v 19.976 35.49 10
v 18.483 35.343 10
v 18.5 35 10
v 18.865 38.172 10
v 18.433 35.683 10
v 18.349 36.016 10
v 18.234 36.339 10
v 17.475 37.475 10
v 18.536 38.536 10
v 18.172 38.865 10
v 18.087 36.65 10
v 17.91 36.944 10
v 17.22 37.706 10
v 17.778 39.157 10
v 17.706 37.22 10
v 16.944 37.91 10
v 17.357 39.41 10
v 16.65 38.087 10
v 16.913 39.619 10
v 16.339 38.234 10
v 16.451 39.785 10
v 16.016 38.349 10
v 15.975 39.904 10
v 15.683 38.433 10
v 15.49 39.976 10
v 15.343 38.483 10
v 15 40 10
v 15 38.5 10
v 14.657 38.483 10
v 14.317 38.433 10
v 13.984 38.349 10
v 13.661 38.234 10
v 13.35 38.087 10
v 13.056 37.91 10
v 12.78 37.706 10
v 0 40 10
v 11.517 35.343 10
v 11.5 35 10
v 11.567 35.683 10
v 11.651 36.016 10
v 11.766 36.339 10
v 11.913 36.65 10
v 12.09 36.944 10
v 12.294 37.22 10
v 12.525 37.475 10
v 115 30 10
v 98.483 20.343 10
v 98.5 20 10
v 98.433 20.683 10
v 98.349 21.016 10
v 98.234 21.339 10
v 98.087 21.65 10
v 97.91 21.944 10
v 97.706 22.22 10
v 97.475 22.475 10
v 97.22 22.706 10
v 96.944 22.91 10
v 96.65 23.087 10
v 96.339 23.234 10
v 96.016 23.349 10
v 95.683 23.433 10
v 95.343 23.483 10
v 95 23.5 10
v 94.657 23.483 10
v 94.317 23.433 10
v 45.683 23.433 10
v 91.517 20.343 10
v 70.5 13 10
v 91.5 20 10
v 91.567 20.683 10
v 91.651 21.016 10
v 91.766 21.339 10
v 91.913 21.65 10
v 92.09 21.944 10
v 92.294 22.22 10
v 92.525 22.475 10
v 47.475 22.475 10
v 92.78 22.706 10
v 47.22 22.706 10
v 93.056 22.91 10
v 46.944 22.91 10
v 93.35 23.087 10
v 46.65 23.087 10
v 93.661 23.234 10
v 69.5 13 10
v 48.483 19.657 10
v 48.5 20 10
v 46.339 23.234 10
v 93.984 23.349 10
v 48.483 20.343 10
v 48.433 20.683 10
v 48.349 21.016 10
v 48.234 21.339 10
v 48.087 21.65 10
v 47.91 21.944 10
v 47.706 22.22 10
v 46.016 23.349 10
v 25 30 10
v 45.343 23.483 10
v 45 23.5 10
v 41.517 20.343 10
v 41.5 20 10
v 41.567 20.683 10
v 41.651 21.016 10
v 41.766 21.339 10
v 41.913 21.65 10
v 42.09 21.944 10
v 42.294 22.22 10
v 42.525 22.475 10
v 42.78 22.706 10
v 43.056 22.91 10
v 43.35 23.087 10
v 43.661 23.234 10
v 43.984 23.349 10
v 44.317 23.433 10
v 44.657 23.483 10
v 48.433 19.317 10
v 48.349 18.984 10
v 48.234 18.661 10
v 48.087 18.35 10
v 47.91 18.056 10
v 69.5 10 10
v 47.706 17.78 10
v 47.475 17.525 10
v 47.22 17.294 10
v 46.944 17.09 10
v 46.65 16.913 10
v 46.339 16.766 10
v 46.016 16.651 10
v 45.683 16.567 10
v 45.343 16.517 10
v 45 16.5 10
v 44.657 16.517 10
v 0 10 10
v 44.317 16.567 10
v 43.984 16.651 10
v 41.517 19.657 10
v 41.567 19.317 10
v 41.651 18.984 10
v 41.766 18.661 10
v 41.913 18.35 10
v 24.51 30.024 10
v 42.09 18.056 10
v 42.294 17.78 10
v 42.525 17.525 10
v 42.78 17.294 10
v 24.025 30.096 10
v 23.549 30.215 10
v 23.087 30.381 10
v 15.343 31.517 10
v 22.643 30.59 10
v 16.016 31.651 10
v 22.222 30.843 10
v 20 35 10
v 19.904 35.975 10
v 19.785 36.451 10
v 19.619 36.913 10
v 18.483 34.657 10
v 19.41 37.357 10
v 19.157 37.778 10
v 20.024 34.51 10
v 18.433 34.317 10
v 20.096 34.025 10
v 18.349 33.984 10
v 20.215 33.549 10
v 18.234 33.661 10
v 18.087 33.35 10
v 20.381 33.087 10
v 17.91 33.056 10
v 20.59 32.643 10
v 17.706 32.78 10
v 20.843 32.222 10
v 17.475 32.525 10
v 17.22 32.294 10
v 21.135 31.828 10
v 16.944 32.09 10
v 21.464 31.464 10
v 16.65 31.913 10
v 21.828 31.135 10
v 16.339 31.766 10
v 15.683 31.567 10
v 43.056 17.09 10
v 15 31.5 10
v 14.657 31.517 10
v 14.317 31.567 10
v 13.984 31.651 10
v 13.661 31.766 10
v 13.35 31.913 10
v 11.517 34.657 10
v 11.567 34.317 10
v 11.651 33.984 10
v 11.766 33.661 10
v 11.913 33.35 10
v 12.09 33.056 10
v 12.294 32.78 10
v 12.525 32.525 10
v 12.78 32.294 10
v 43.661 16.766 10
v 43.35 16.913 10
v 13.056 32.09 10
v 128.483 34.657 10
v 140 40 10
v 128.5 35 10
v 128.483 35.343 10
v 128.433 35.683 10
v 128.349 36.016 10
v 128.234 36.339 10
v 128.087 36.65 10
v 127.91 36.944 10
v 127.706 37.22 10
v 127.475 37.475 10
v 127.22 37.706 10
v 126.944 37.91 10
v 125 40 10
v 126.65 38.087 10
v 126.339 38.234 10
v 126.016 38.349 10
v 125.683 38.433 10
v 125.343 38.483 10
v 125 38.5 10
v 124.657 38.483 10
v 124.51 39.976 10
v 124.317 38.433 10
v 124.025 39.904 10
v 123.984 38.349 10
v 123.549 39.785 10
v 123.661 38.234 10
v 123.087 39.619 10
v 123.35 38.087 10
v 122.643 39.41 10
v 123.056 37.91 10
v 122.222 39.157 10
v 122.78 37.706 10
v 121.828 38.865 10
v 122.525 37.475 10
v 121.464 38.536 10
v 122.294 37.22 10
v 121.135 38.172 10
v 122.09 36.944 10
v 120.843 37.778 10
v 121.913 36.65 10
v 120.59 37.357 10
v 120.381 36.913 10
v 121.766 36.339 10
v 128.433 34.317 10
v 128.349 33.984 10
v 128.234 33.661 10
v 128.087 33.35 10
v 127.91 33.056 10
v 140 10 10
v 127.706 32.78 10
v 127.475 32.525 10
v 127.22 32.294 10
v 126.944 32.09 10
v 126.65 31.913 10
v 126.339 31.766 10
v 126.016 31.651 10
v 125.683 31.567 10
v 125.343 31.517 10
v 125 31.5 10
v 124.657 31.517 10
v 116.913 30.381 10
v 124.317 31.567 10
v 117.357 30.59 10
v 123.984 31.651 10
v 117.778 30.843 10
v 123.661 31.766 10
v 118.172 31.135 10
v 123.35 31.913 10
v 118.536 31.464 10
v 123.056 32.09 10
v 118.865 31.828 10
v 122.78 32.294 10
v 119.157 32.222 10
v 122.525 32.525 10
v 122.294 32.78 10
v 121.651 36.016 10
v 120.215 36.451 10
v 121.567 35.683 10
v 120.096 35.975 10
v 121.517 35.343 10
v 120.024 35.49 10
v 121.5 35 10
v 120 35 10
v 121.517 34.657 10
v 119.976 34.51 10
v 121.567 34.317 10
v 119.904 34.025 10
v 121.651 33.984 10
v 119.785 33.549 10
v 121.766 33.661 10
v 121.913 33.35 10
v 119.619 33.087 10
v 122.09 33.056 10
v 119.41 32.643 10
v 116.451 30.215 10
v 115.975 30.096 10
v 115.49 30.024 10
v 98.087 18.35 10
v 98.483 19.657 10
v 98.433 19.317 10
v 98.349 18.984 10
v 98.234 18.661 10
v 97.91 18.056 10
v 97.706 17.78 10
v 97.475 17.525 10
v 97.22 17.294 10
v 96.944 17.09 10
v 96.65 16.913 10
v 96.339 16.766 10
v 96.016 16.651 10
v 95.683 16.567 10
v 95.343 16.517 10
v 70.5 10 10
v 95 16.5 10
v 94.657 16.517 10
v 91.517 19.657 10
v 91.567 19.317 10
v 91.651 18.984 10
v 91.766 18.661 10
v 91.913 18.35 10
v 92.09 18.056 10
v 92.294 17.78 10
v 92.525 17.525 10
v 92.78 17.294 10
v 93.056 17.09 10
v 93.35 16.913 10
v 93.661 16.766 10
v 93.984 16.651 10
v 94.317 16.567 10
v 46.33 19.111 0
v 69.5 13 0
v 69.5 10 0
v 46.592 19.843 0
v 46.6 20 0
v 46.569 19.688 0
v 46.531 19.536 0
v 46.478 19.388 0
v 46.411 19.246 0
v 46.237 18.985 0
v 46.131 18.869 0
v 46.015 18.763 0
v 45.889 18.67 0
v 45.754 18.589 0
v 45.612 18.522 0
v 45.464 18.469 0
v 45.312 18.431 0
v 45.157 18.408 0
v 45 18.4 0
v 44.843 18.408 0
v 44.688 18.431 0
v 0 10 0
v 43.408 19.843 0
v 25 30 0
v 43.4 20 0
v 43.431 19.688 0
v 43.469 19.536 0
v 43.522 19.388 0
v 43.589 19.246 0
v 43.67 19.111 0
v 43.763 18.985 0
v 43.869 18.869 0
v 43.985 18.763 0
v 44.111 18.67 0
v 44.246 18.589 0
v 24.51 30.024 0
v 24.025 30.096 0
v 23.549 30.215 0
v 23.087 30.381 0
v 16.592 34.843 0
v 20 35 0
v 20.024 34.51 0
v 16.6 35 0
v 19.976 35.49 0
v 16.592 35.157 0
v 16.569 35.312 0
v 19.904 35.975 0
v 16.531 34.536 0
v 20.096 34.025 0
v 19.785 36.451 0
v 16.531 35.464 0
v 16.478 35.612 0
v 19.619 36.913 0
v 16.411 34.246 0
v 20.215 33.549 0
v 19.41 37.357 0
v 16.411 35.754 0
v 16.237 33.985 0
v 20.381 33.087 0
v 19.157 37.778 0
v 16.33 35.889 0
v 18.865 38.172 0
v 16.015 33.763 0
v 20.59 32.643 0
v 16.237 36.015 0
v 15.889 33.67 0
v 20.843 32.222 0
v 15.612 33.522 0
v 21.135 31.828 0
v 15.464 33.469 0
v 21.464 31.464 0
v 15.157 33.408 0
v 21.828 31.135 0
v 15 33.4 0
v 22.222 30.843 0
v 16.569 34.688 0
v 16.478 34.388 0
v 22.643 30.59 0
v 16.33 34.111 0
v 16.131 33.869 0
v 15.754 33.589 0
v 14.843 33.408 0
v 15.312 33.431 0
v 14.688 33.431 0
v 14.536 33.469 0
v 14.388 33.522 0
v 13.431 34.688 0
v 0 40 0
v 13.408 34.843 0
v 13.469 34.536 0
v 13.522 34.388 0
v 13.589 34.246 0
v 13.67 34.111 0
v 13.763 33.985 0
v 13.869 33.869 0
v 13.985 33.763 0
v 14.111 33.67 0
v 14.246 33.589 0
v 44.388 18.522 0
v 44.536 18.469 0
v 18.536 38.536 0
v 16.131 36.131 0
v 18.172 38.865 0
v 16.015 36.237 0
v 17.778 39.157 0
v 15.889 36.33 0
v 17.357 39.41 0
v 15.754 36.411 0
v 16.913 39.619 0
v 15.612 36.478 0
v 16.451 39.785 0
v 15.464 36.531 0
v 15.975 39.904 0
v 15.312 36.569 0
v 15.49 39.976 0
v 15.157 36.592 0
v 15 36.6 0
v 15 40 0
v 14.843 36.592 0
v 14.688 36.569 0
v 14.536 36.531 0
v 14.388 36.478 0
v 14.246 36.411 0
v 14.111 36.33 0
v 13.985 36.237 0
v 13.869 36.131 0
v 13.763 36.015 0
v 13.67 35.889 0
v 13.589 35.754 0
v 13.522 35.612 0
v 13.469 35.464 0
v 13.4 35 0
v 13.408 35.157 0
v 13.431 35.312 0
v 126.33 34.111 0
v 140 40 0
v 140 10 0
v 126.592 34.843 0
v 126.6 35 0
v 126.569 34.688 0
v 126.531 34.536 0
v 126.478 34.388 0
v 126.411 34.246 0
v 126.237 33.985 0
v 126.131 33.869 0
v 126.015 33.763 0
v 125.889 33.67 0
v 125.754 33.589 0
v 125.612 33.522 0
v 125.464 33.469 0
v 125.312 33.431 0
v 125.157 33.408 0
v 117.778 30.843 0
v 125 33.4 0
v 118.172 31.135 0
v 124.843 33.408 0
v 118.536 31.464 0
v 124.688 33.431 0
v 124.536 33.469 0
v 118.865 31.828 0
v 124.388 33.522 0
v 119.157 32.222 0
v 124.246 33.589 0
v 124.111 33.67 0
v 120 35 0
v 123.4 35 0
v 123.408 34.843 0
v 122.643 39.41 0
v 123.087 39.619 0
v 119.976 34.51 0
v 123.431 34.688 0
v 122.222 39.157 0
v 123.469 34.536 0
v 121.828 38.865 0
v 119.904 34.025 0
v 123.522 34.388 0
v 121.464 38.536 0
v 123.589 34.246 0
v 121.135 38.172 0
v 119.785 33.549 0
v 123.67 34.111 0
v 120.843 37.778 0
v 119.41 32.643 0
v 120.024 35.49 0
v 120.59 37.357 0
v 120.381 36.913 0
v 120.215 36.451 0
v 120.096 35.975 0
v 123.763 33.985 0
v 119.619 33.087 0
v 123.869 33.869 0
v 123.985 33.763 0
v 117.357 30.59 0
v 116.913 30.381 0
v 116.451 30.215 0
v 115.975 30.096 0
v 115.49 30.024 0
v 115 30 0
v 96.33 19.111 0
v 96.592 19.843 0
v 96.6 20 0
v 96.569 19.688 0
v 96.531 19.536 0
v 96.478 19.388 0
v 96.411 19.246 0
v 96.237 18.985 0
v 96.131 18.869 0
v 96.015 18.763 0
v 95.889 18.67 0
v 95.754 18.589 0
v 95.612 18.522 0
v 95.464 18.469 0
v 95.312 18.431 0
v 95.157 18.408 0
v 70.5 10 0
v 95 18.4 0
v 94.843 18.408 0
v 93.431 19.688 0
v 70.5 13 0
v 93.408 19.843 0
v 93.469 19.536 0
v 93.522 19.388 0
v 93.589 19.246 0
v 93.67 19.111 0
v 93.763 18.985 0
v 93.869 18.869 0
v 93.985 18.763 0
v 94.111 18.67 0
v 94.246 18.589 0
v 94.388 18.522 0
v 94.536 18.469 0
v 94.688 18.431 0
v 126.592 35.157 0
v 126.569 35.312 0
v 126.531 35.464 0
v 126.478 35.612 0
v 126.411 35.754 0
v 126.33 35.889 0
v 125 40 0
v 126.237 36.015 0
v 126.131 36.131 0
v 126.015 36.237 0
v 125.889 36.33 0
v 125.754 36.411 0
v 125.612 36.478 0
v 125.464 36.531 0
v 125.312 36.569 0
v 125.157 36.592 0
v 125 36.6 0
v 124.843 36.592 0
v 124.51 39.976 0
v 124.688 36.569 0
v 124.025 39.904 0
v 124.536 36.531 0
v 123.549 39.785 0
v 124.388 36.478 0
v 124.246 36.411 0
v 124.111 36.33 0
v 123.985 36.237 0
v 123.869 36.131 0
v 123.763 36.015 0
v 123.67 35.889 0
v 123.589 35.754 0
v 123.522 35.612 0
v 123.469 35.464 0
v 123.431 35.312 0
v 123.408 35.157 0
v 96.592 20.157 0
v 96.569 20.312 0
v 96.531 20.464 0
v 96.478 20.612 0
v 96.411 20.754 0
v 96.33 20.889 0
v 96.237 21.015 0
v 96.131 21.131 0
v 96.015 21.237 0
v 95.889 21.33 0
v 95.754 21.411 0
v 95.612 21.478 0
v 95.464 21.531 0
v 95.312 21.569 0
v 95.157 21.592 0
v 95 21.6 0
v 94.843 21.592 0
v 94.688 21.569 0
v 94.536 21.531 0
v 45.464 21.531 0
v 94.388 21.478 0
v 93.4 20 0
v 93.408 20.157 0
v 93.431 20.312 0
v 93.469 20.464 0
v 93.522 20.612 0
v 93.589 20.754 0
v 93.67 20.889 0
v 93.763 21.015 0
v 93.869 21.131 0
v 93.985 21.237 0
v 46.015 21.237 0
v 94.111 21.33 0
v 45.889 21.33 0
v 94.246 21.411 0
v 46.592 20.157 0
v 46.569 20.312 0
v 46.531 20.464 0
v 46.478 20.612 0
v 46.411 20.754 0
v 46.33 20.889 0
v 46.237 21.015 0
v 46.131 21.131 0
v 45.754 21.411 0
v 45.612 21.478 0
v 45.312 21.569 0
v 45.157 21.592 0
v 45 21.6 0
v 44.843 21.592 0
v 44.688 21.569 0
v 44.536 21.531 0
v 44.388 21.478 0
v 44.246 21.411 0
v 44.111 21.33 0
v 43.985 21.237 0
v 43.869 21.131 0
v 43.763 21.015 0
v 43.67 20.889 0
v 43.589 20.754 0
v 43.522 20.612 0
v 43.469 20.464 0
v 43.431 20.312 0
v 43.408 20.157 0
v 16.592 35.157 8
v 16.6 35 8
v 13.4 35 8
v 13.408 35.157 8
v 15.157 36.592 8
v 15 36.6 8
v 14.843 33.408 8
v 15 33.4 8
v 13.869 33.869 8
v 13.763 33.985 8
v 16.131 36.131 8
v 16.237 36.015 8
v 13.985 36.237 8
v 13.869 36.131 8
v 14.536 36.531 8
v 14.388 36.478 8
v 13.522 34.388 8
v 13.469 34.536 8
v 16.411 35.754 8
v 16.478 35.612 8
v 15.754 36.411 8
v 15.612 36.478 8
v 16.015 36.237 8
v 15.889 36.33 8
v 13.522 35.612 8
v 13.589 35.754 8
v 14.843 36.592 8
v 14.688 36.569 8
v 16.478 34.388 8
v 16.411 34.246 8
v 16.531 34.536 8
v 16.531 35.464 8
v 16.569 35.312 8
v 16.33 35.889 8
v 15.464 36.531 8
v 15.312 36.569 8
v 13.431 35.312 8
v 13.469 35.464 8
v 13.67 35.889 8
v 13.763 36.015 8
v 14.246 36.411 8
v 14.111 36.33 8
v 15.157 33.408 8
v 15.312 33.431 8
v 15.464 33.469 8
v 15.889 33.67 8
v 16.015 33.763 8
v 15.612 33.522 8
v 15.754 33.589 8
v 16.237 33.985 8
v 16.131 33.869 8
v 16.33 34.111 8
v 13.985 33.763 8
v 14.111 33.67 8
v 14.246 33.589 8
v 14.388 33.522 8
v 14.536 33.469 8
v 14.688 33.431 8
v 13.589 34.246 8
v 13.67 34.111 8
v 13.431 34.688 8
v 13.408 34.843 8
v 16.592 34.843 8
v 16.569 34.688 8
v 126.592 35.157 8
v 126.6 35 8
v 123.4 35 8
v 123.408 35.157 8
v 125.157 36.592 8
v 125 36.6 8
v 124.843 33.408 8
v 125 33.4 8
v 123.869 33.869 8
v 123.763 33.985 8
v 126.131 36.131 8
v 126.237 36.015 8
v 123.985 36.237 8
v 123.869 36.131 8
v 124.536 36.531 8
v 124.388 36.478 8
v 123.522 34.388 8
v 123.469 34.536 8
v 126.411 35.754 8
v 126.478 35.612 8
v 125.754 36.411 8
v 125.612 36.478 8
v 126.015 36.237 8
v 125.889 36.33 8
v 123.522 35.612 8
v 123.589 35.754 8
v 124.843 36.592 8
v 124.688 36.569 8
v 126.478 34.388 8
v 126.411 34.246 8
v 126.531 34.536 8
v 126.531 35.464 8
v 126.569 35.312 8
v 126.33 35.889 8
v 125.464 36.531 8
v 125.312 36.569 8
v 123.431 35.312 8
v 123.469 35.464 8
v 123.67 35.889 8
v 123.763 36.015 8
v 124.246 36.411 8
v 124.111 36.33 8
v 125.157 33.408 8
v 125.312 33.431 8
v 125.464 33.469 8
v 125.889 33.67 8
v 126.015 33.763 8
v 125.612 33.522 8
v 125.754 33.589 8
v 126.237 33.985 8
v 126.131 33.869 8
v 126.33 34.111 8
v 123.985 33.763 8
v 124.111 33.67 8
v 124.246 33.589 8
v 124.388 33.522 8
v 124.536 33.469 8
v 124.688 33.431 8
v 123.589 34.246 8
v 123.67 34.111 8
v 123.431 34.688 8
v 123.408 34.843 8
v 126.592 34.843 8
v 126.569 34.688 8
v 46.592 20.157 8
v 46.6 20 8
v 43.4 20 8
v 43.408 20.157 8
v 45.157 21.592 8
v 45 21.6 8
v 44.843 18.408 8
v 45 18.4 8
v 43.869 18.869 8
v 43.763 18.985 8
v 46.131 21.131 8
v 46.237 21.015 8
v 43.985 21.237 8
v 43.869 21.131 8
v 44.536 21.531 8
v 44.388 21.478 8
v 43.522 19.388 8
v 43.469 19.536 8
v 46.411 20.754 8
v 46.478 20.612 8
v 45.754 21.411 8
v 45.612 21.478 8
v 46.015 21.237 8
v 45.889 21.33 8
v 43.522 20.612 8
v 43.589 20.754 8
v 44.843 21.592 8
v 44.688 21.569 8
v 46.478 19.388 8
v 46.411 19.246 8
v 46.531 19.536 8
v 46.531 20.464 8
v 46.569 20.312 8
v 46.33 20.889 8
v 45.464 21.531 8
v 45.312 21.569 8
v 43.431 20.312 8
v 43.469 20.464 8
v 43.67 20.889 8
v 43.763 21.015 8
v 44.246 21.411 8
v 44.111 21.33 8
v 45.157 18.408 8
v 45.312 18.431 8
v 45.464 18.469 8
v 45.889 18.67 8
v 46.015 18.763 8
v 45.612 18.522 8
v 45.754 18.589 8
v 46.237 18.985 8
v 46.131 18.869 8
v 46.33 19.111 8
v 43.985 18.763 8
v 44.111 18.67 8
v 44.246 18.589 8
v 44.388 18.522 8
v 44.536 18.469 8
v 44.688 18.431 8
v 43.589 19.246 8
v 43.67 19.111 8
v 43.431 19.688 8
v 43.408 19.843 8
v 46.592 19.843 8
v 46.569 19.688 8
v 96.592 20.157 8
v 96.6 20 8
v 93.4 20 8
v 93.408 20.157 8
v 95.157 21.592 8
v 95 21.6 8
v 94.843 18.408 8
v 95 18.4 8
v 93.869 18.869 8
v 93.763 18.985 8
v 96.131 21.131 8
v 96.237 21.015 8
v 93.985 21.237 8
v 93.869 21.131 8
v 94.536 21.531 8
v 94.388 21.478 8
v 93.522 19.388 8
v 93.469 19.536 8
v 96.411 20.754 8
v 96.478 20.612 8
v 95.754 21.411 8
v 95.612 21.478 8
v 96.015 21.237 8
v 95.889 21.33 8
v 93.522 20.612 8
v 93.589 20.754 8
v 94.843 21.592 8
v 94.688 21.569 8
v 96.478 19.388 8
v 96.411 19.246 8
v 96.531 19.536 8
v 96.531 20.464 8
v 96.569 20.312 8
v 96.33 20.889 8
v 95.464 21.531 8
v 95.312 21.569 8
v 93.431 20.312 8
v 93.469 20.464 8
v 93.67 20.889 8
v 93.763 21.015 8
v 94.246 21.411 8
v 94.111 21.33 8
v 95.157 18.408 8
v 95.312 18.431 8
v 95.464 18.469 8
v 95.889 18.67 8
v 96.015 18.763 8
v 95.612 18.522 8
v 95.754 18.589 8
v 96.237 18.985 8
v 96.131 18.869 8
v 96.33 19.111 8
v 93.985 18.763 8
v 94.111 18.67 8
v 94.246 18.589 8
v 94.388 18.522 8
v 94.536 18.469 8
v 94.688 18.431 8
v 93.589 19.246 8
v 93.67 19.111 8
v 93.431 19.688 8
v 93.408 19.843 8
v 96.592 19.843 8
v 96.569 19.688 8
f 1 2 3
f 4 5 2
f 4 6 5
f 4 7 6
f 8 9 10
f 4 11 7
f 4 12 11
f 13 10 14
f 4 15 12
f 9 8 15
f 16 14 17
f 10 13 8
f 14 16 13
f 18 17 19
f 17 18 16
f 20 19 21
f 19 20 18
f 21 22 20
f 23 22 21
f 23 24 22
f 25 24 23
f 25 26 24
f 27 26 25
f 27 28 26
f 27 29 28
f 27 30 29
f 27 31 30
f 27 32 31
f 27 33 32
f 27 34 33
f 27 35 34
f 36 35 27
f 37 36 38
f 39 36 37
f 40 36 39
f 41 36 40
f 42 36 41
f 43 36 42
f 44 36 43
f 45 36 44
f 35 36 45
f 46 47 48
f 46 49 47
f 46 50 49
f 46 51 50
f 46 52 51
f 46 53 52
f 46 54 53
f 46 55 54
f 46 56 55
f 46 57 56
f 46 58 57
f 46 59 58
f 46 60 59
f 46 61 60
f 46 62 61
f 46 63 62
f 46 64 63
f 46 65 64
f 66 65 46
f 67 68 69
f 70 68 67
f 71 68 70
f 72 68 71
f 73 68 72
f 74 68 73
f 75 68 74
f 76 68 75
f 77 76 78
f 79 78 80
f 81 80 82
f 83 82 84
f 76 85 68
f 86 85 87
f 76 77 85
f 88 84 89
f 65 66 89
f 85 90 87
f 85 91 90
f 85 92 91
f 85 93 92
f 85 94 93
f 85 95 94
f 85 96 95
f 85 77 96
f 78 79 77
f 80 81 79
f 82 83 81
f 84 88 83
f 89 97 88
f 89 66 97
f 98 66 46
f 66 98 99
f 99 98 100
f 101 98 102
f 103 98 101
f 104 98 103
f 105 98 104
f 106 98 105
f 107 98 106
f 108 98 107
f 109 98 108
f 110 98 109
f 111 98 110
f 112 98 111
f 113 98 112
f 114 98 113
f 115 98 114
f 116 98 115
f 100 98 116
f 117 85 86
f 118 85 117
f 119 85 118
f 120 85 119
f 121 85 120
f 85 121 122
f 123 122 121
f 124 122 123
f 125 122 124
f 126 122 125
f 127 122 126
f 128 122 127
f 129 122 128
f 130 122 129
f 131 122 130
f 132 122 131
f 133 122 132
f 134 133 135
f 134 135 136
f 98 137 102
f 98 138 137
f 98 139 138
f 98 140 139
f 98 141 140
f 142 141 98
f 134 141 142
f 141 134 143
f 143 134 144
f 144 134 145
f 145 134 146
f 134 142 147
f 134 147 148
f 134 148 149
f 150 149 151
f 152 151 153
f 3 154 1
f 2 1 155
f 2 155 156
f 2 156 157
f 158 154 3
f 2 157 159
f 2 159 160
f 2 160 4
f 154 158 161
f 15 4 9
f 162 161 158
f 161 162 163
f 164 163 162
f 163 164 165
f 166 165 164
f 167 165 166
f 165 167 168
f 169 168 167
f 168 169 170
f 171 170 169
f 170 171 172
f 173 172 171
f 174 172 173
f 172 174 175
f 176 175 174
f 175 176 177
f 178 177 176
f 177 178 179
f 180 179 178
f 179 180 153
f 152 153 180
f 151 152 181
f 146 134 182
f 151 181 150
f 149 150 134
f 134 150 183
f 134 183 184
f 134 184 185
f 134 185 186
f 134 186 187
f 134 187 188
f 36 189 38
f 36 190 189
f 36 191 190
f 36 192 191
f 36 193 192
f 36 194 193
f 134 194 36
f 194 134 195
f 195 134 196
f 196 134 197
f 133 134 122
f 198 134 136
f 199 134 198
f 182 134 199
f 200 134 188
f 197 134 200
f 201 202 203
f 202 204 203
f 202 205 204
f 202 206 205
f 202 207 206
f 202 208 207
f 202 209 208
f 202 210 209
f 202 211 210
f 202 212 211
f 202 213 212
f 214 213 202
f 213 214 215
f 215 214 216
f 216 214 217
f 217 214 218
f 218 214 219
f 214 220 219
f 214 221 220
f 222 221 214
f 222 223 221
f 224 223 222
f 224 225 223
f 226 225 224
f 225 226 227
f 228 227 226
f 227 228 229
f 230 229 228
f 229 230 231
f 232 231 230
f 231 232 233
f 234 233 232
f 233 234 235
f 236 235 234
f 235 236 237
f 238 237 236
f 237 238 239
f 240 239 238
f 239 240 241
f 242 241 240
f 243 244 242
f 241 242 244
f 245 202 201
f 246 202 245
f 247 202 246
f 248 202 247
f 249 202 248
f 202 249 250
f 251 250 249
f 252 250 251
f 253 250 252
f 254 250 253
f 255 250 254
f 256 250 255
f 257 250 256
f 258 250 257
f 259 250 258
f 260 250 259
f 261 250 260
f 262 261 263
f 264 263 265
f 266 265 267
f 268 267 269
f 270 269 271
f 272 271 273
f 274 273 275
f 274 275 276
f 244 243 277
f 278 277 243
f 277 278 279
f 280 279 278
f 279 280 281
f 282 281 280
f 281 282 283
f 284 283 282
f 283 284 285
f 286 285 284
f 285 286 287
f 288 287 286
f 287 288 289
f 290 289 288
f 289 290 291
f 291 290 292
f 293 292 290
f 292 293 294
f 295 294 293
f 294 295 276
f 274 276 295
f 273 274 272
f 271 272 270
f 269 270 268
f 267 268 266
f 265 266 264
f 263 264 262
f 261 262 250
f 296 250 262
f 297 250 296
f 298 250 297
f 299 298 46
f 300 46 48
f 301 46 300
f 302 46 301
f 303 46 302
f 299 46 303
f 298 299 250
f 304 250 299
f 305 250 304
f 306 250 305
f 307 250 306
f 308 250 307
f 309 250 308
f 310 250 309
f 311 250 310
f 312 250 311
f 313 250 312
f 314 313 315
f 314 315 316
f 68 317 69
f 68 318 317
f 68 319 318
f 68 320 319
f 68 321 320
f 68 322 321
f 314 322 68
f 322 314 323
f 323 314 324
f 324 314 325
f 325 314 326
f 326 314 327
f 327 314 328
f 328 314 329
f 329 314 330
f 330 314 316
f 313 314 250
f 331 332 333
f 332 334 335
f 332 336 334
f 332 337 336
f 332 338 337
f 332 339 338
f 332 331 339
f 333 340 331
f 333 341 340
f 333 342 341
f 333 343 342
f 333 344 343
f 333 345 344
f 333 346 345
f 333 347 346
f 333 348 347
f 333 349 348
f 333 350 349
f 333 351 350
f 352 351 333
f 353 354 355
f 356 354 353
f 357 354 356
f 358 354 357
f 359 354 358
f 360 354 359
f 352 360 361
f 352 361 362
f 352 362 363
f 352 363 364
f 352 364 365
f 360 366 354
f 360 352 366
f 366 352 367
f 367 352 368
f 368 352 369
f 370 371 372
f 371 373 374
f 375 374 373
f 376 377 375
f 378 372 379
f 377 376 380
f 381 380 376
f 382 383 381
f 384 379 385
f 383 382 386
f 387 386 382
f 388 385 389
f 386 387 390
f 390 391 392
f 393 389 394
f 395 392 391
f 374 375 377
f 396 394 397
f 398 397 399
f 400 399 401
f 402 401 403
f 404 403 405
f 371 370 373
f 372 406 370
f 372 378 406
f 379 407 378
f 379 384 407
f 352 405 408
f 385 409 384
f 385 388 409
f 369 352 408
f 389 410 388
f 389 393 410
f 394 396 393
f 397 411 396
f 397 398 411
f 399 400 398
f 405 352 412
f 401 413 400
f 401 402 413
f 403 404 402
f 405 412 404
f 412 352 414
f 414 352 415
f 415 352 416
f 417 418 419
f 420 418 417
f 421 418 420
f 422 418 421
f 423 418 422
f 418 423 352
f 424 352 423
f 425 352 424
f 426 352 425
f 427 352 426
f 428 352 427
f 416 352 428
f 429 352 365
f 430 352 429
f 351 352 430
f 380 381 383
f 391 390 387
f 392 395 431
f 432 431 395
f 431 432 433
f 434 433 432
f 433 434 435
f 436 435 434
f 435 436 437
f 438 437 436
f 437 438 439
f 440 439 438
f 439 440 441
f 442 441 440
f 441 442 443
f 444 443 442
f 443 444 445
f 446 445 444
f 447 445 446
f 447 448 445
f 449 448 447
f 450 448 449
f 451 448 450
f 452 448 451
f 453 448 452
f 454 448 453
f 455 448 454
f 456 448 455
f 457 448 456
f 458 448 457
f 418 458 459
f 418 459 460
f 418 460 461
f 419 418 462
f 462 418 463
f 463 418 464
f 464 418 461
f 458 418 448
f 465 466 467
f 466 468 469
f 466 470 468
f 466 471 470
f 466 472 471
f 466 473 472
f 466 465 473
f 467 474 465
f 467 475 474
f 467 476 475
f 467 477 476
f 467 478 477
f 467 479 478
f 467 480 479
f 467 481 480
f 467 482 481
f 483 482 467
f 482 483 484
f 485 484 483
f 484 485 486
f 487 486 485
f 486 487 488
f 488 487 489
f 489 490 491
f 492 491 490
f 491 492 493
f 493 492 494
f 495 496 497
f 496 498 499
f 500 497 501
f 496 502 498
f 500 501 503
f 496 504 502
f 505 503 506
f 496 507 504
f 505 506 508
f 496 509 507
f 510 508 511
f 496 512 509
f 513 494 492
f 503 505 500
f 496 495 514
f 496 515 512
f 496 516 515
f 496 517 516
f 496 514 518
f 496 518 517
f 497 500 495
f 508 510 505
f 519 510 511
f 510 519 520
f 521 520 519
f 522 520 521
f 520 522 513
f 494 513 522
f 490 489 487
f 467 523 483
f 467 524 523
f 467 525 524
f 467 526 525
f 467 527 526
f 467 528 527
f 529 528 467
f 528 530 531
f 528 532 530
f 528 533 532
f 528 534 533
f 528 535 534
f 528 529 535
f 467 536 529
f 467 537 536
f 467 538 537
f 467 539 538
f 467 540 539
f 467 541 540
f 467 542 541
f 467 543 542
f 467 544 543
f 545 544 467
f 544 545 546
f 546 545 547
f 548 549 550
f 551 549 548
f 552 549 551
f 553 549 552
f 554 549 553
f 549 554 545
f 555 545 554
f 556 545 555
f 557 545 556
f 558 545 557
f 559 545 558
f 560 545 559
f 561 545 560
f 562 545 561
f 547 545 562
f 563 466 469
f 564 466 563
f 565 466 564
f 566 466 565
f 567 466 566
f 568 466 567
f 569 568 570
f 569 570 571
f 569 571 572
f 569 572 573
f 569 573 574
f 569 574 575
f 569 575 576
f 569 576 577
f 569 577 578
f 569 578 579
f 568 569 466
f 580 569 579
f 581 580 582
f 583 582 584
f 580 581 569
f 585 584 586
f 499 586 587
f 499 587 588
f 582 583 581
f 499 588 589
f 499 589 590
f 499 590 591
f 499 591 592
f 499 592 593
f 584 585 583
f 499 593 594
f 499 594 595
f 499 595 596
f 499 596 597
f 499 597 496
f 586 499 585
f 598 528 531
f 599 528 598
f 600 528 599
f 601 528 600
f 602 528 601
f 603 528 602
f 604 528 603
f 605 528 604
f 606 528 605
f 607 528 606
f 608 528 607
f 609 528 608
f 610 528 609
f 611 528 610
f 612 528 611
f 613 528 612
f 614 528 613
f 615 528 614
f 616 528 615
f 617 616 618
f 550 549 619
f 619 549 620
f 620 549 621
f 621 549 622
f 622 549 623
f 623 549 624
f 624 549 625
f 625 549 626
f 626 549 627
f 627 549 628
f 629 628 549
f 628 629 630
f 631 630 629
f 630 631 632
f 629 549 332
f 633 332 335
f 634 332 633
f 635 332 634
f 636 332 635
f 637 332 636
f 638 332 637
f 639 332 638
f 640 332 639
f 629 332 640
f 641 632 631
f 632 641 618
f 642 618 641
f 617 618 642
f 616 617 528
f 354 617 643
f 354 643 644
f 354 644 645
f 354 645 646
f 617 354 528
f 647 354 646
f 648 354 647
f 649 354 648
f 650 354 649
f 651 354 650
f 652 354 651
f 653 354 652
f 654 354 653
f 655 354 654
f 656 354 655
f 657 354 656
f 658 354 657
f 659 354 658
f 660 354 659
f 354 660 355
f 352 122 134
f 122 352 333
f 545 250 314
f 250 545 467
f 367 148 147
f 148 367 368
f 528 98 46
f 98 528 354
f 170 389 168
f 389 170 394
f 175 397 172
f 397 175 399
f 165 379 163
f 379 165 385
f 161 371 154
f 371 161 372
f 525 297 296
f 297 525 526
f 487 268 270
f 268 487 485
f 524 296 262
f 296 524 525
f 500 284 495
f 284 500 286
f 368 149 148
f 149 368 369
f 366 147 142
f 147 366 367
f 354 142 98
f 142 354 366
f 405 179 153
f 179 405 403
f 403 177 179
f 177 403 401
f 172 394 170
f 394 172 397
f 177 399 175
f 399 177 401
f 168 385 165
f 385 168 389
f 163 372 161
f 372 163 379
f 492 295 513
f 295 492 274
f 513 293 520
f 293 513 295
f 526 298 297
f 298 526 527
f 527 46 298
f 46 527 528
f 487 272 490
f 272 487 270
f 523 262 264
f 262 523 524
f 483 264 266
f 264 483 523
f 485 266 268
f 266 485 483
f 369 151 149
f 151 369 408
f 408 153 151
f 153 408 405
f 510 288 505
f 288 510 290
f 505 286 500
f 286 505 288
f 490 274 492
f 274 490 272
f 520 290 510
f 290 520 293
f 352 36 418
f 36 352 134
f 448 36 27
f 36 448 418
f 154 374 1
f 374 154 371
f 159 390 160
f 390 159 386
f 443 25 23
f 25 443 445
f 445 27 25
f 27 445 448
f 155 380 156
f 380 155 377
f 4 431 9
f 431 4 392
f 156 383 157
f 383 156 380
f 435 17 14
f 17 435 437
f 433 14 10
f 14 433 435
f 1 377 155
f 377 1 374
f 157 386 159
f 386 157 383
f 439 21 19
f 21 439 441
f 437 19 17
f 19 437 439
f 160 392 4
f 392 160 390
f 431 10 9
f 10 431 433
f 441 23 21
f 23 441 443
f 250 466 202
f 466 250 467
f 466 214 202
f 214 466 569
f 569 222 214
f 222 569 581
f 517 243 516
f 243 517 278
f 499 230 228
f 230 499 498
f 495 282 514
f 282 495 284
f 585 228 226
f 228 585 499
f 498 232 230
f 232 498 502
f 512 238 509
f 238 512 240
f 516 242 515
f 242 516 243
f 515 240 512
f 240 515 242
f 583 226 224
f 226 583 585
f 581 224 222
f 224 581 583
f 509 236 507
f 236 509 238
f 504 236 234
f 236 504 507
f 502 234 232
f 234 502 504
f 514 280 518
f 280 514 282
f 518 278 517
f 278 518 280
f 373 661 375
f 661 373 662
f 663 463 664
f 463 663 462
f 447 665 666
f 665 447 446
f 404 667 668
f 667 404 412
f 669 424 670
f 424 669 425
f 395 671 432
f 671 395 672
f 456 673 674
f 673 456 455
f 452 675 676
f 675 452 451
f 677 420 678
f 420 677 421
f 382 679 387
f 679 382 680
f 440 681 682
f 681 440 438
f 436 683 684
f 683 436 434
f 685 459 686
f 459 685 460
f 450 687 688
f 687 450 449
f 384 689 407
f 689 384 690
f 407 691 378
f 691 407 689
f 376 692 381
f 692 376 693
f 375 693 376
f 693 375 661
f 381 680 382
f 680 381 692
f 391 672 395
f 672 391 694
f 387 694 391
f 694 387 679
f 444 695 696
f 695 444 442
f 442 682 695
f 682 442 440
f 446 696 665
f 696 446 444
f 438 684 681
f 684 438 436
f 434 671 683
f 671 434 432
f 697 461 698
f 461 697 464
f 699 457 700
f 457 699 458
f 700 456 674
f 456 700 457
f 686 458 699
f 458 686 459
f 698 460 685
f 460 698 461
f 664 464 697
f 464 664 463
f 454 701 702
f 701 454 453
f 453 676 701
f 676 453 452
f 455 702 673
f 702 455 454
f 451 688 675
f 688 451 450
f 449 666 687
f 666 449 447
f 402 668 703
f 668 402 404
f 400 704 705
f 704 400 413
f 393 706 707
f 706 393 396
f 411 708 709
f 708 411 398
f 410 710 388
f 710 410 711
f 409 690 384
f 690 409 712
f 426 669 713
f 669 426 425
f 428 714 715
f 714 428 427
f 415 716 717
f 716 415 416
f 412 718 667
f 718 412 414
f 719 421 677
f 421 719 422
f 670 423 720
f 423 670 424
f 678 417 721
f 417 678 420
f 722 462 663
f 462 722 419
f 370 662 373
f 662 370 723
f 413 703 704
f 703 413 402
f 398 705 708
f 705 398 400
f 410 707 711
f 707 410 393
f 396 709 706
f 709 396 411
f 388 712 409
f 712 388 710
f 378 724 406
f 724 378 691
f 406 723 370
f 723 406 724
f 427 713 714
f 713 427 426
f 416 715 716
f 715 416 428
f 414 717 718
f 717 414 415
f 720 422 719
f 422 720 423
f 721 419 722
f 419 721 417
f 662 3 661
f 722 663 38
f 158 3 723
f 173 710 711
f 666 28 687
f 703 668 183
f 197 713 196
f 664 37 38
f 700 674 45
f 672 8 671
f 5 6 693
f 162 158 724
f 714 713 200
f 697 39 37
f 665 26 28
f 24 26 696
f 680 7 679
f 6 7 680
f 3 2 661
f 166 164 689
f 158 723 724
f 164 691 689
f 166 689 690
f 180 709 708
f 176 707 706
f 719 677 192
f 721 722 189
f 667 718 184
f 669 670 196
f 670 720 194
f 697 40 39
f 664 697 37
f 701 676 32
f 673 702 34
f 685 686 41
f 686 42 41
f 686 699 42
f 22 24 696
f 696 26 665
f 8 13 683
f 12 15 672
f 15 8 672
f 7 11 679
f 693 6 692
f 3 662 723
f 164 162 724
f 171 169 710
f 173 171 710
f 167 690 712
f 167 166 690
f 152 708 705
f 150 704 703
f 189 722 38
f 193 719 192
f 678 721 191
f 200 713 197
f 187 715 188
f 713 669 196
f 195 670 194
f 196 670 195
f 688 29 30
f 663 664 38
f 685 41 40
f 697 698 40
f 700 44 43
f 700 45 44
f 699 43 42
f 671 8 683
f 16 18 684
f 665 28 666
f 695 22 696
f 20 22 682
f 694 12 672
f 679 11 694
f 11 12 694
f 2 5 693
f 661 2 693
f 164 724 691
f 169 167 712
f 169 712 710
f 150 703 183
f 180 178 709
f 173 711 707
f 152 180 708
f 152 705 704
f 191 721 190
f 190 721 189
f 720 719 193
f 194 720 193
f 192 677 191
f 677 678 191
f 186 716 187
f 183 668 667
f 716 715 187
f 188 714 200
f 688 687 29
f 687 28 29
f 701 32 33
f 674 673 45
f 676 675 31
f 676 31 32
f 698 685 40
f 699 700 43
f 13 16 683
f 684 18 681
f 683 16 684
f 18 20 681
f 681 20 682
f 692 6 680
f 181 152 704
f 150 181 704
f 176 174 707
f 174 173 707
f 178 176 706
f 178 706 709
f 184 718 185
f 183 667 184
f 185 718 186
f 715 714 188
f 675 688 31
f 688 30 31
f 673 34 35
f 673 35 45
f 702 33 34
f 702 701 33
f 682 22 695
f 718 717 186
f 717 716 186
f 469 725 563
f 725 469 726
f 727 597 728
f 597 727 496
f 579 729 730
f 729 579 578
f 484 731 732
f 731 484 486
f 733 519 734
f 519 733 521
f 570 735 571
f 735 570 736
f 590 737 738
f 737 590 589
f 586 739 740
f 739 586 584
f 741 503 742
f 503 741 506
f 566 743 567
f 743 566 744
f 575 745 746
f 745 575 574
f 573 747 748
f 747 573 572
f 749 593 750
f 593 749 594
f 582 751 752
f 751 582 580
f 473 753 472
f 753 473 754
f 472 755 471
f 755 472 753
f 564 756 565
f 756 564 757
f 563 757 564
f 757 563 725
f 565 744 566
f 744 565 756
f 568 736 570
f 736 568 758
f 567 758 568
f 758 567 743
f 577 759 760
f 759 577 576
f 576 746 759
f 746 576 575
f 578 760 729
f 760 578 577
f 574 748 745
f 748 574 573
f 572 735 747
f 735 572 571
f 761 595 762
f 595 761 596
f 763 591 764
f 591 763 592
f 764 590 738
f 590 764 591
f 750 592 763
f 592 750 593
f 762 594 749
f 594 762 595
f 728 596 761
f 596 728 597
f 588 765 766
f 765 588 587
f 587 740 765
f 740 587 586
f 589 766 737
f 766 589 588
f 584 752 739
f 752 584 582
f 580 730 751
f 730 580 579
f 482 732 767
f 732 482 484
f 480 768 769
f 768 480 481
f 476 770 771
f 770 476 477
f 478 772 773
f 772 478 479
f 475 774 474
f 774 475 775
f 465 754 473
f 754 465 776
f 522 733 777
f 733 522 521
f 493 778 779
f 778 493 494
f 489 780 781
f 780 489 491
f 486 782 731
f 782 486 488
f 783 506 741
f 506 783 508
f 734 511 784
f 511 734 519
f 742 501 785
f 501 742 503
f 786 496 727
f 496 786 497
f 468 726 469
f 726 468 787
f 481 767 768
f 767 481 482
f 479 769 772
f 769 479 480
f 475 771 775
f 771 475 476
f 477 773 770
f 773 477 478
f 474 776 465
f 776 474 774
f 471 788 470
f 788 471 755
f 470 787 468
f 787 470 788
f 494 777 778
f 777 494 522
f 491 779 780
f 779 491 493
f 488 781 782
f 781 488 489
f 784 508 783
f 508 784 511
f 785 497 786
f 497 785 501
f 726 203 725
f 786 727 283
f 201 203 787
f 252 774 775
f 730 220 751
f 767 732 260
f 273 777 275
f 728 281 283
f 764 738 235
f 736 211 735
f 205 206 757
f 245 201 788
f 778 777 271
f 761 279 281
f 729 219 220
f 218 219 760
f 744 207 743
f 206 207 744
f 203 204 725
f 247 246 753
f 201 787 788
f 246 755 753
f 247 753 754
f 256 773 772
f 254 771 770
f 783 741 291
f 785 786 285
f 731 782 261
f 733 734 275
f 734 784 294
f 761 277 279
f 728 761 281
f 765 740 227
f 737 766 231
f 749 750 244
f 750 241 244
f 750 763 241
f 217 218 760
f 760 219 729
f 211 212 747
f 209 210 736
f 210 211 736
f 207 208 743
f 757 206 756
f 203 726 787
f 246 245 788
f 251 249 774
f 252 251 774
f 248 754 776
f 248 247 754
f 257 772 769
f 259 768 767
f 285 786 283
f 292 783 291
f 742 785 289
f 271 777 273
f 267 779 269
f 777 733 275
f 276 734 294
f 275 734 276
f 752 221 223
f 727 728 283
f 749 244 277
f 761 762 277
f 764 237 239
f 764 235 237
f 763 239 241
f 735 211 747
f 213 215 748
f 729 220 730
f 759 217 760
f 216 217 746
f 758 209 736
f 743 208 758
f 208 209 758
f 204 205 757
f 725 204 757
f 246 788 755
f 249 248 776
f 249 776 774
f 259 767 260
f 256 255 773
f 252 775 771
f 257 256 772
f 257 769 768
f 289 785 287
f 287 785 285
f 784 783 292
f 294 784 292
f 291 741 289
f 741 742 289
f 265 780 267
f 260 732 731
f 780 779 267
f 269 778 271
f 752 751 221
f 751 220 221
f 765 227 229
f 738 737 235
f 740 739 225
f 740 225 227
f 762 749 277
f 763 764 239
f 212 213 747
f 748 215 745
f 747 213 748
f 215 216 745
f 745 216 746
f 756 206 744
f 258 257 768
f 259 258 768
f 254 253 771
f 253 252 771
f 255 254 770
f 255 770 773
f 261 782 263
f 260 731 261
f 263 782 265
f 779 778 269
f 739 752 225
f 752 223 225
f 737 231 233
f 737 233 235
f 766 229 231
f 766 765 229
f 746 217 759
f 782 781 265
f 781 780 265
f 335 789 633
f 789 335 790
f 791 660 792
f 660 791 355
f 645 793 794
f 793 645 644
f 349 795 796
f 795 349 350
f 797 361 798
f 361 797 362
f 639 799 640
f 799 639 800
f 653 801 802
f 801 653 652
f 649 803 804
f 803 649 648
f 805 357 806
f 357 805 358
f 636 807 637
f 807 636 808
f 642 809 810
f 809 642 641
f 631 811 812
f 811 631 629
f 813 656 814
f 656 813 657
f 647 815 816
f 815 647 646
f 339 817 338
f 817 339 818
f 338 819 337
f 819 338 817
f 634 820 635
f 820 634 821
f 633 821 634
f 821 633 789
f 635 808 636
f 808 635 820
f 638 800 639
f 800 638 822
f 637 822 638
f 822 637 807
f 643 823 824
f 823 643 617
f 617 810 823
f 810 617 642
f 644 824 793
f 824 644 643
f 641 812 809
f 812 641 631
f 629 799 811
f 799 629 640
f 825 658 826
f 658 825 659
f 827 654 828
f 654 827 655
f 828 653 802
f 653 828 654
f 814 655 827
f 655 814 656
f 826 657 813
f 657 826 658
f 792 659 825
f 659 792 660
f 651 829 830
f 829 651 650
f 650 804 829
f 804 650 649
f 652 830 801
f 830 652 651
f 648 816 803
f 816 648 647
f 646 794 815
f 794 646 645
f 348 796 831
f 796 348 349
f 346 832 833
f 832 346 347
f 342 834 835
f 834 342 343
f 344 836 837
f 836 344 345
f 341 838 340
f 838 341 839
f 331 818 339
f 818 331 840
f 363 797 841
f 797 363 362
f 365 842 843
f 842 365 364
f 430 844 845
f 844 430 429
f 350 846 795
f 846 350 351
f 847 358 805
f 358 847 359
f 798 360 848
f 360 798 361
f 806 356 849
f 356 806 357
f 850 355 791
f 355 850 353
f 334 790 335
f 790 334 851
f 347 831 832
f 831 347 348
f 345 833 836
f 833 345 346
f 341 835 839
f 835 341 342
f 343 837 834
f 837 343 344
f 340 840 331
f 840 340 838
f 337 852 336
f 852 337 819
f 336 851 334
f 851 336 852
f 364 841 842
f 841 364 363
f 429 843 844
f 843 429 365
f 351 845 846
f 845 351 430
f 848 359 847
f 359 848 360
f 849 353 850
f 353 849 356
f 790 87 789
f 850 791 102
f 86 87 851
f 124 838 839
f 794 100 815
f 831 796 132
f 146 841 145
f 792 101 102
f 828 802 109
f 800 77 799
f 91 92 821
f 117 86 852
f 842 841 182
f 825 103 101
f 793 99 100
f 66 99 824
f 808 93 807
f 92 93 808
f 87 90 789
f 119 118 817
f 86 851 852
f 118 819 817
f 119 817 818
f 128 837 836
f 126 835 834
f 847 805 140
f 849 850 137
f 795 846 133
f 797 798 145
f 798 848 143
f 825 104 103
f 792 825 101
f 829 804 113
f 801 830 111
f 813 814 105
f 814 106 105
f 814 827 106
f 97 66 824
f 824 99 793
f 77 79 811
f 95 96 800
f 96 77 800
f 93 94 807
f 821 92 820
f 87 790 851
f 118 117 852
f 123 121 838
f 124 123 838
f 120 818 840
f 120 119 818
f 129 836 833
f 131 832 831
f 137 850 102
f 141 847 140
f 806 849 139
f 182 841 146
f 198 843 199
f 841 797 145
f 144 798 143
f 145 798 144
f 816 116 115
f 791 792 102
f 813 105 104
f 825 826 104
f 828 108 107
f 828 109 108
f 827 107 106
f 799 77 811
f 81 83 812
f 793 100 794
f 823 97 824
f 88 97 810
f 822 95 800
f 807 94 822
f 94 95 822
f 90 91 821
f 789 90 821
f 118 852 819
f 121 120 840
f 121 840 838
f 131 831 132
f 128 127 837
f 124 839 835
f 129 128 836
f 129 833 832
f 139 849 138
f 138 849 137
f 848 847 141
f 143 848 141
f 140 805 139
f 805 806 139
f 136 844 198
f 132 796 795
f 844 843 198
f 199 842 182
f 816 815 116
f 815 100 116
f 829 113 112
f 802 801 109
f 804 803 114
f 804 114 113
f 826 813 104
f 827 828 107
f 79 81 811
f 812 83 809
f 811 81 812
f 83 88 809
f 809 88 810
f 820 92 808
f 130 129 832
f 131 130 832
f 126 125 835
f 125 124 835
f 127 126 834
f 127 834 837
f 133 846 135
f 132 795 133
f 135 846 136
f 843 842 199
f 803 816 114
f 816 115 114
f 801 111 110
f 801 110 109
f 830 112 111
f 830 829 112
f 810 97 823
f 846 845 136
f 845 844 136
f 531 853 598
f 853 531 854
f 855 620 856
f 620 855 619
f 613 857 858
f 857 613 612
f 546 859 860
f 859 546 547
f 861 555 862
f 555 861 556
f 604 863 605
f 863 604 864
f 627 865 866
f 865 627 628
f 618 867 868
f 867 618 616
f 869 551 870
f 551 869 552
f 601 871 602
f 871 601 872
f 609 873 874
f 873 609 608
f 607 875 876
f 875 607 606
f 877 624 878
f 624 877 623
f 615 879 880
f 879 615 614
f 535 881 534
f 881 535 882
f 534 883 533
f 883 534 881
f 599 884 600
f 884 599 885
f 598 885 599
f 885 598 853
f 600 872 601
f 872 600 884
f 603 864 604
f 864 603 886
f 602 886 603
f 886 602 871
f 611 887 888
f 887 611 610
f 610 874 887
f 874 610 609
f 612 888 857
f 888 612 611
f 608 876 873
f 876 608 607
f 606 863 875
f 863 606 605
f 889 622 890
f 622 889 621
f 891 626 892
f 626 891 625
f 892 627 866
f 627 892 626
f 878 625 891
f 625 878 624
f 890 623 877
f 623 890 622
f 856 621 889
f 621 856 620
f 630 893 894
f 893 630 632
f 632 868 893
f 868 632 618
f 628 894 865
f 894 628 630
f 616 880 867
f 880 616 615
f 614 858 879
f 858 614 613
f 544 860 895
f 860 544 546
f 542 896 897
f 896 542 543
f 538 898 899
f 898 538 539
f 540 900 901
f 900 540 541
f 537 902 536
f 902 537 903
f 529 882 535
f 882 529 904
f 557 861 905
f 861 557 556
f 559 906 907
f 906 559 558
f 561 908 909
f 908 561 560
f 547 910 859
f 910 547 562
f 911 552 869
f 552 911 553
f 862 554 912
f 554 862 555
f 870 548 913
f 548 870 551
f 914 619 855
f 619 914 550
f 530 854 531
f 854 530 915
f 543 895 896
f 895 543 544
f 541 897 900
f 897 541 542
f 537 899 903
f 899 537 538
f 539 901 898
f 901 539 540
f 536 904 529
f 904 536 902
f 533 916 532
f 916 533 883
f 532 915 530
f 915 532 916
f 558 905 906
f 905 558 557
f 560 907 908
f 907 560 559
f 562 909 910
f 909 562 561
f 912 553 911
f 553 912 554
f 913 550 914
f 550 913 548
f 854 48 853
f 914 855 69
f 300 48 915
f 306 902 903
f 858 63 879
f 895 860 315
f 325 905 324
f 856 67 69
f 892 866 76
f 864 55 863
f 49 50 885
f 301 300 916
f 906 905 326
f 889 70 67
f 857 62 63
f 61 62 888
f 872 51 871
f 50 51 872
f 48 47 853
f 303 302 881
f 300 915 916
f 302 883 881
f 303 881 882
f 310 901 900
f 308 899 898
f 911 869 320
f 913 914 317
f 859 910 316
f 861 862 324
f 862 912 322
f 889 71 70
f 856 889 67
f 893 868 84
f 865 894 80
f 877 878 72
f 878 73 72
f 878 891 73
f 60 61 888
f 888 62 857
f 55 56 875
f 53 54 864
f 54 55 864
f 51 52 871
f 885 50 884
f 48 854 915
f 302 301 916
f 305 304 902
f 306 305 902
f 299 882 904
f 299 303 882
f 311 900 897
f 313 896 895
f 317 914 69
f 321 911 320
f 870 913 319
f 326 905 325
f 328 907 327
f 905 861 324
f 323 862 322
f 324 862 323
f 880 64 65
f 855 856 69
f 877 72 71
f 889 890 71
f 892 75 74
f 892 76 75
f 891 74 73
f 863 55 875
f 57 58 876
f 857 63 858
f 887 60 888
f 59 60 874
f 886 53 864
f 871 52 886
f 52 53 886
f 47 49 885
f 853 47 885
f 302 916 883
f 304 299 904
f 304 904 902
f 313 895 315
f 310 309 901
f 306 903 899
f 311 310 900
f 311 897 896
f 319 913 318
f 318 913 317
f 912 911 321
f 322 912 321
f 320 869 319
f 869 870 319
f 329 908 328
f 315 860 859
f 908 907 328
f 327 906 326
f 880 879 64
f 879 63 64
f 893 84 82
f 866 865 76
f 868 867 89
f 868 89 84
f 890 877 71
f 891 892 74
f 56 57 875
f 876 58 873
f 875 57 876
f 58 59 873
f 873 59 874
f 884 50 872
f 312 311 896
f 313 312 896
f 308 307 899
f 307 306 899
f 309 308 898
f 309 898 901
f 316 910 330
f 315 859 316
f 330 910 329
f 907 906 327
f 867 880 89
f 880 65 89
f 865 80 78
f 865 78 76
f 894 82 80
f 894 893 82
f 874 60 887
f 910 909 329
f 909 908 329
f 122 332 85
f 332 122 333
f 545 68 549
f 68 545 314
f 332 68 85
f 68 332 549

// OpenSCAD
$fn = 64;

thickness = 10;

module side_part() {
    hull() {
        translate([0, 10, 0])
            cube([10, 30, thickness]);
        translate([10 + 10/2, 40 - 10/2, 0])
            cylinder(d = 10, h = thickness);
        translate([10, 10, 0])
            cube([10, 20, thickness]);
    }
}

module middle_part() {
    difference() {
        translate([0, 10, 0])
            cube([100, 30, thickness]);
        hull() {
            translate([10/2, 30 + 10/2, -1])
                cylinder(d = 10, h = thickness * 2);
            translate([100 - 10/2, 30 + 10/2, -1])
                cylinder(d = 10, h = thickness * 2);
            translate([0, 40, -1])
            cube([100, 10, thickness * 2]);
        }
    }
}

module screw() {
    cylinder(d = 3.2, h = thickness);
    translate([0, 0, 8])
        cylinder(d1 = 3.2, d2 = 7, , h = 2);
}

difference() {
    union() {
        side_part();
        translate([140, 0, 0])
            mirror([1, 0, 0])
                side_part();
        translate([20, 0, 0])
            middle_part();
    }
    translate([15, 35, 0])
        screw();
    translate([125, 35, 0])
        screw();
    translate([45, 20, 0])
        screw();
    translate([95, 20, 0])
        screw();
    translate([140/2 - 0.5, 10, 0])
        cube([1, 3, thickness]);
    
}
